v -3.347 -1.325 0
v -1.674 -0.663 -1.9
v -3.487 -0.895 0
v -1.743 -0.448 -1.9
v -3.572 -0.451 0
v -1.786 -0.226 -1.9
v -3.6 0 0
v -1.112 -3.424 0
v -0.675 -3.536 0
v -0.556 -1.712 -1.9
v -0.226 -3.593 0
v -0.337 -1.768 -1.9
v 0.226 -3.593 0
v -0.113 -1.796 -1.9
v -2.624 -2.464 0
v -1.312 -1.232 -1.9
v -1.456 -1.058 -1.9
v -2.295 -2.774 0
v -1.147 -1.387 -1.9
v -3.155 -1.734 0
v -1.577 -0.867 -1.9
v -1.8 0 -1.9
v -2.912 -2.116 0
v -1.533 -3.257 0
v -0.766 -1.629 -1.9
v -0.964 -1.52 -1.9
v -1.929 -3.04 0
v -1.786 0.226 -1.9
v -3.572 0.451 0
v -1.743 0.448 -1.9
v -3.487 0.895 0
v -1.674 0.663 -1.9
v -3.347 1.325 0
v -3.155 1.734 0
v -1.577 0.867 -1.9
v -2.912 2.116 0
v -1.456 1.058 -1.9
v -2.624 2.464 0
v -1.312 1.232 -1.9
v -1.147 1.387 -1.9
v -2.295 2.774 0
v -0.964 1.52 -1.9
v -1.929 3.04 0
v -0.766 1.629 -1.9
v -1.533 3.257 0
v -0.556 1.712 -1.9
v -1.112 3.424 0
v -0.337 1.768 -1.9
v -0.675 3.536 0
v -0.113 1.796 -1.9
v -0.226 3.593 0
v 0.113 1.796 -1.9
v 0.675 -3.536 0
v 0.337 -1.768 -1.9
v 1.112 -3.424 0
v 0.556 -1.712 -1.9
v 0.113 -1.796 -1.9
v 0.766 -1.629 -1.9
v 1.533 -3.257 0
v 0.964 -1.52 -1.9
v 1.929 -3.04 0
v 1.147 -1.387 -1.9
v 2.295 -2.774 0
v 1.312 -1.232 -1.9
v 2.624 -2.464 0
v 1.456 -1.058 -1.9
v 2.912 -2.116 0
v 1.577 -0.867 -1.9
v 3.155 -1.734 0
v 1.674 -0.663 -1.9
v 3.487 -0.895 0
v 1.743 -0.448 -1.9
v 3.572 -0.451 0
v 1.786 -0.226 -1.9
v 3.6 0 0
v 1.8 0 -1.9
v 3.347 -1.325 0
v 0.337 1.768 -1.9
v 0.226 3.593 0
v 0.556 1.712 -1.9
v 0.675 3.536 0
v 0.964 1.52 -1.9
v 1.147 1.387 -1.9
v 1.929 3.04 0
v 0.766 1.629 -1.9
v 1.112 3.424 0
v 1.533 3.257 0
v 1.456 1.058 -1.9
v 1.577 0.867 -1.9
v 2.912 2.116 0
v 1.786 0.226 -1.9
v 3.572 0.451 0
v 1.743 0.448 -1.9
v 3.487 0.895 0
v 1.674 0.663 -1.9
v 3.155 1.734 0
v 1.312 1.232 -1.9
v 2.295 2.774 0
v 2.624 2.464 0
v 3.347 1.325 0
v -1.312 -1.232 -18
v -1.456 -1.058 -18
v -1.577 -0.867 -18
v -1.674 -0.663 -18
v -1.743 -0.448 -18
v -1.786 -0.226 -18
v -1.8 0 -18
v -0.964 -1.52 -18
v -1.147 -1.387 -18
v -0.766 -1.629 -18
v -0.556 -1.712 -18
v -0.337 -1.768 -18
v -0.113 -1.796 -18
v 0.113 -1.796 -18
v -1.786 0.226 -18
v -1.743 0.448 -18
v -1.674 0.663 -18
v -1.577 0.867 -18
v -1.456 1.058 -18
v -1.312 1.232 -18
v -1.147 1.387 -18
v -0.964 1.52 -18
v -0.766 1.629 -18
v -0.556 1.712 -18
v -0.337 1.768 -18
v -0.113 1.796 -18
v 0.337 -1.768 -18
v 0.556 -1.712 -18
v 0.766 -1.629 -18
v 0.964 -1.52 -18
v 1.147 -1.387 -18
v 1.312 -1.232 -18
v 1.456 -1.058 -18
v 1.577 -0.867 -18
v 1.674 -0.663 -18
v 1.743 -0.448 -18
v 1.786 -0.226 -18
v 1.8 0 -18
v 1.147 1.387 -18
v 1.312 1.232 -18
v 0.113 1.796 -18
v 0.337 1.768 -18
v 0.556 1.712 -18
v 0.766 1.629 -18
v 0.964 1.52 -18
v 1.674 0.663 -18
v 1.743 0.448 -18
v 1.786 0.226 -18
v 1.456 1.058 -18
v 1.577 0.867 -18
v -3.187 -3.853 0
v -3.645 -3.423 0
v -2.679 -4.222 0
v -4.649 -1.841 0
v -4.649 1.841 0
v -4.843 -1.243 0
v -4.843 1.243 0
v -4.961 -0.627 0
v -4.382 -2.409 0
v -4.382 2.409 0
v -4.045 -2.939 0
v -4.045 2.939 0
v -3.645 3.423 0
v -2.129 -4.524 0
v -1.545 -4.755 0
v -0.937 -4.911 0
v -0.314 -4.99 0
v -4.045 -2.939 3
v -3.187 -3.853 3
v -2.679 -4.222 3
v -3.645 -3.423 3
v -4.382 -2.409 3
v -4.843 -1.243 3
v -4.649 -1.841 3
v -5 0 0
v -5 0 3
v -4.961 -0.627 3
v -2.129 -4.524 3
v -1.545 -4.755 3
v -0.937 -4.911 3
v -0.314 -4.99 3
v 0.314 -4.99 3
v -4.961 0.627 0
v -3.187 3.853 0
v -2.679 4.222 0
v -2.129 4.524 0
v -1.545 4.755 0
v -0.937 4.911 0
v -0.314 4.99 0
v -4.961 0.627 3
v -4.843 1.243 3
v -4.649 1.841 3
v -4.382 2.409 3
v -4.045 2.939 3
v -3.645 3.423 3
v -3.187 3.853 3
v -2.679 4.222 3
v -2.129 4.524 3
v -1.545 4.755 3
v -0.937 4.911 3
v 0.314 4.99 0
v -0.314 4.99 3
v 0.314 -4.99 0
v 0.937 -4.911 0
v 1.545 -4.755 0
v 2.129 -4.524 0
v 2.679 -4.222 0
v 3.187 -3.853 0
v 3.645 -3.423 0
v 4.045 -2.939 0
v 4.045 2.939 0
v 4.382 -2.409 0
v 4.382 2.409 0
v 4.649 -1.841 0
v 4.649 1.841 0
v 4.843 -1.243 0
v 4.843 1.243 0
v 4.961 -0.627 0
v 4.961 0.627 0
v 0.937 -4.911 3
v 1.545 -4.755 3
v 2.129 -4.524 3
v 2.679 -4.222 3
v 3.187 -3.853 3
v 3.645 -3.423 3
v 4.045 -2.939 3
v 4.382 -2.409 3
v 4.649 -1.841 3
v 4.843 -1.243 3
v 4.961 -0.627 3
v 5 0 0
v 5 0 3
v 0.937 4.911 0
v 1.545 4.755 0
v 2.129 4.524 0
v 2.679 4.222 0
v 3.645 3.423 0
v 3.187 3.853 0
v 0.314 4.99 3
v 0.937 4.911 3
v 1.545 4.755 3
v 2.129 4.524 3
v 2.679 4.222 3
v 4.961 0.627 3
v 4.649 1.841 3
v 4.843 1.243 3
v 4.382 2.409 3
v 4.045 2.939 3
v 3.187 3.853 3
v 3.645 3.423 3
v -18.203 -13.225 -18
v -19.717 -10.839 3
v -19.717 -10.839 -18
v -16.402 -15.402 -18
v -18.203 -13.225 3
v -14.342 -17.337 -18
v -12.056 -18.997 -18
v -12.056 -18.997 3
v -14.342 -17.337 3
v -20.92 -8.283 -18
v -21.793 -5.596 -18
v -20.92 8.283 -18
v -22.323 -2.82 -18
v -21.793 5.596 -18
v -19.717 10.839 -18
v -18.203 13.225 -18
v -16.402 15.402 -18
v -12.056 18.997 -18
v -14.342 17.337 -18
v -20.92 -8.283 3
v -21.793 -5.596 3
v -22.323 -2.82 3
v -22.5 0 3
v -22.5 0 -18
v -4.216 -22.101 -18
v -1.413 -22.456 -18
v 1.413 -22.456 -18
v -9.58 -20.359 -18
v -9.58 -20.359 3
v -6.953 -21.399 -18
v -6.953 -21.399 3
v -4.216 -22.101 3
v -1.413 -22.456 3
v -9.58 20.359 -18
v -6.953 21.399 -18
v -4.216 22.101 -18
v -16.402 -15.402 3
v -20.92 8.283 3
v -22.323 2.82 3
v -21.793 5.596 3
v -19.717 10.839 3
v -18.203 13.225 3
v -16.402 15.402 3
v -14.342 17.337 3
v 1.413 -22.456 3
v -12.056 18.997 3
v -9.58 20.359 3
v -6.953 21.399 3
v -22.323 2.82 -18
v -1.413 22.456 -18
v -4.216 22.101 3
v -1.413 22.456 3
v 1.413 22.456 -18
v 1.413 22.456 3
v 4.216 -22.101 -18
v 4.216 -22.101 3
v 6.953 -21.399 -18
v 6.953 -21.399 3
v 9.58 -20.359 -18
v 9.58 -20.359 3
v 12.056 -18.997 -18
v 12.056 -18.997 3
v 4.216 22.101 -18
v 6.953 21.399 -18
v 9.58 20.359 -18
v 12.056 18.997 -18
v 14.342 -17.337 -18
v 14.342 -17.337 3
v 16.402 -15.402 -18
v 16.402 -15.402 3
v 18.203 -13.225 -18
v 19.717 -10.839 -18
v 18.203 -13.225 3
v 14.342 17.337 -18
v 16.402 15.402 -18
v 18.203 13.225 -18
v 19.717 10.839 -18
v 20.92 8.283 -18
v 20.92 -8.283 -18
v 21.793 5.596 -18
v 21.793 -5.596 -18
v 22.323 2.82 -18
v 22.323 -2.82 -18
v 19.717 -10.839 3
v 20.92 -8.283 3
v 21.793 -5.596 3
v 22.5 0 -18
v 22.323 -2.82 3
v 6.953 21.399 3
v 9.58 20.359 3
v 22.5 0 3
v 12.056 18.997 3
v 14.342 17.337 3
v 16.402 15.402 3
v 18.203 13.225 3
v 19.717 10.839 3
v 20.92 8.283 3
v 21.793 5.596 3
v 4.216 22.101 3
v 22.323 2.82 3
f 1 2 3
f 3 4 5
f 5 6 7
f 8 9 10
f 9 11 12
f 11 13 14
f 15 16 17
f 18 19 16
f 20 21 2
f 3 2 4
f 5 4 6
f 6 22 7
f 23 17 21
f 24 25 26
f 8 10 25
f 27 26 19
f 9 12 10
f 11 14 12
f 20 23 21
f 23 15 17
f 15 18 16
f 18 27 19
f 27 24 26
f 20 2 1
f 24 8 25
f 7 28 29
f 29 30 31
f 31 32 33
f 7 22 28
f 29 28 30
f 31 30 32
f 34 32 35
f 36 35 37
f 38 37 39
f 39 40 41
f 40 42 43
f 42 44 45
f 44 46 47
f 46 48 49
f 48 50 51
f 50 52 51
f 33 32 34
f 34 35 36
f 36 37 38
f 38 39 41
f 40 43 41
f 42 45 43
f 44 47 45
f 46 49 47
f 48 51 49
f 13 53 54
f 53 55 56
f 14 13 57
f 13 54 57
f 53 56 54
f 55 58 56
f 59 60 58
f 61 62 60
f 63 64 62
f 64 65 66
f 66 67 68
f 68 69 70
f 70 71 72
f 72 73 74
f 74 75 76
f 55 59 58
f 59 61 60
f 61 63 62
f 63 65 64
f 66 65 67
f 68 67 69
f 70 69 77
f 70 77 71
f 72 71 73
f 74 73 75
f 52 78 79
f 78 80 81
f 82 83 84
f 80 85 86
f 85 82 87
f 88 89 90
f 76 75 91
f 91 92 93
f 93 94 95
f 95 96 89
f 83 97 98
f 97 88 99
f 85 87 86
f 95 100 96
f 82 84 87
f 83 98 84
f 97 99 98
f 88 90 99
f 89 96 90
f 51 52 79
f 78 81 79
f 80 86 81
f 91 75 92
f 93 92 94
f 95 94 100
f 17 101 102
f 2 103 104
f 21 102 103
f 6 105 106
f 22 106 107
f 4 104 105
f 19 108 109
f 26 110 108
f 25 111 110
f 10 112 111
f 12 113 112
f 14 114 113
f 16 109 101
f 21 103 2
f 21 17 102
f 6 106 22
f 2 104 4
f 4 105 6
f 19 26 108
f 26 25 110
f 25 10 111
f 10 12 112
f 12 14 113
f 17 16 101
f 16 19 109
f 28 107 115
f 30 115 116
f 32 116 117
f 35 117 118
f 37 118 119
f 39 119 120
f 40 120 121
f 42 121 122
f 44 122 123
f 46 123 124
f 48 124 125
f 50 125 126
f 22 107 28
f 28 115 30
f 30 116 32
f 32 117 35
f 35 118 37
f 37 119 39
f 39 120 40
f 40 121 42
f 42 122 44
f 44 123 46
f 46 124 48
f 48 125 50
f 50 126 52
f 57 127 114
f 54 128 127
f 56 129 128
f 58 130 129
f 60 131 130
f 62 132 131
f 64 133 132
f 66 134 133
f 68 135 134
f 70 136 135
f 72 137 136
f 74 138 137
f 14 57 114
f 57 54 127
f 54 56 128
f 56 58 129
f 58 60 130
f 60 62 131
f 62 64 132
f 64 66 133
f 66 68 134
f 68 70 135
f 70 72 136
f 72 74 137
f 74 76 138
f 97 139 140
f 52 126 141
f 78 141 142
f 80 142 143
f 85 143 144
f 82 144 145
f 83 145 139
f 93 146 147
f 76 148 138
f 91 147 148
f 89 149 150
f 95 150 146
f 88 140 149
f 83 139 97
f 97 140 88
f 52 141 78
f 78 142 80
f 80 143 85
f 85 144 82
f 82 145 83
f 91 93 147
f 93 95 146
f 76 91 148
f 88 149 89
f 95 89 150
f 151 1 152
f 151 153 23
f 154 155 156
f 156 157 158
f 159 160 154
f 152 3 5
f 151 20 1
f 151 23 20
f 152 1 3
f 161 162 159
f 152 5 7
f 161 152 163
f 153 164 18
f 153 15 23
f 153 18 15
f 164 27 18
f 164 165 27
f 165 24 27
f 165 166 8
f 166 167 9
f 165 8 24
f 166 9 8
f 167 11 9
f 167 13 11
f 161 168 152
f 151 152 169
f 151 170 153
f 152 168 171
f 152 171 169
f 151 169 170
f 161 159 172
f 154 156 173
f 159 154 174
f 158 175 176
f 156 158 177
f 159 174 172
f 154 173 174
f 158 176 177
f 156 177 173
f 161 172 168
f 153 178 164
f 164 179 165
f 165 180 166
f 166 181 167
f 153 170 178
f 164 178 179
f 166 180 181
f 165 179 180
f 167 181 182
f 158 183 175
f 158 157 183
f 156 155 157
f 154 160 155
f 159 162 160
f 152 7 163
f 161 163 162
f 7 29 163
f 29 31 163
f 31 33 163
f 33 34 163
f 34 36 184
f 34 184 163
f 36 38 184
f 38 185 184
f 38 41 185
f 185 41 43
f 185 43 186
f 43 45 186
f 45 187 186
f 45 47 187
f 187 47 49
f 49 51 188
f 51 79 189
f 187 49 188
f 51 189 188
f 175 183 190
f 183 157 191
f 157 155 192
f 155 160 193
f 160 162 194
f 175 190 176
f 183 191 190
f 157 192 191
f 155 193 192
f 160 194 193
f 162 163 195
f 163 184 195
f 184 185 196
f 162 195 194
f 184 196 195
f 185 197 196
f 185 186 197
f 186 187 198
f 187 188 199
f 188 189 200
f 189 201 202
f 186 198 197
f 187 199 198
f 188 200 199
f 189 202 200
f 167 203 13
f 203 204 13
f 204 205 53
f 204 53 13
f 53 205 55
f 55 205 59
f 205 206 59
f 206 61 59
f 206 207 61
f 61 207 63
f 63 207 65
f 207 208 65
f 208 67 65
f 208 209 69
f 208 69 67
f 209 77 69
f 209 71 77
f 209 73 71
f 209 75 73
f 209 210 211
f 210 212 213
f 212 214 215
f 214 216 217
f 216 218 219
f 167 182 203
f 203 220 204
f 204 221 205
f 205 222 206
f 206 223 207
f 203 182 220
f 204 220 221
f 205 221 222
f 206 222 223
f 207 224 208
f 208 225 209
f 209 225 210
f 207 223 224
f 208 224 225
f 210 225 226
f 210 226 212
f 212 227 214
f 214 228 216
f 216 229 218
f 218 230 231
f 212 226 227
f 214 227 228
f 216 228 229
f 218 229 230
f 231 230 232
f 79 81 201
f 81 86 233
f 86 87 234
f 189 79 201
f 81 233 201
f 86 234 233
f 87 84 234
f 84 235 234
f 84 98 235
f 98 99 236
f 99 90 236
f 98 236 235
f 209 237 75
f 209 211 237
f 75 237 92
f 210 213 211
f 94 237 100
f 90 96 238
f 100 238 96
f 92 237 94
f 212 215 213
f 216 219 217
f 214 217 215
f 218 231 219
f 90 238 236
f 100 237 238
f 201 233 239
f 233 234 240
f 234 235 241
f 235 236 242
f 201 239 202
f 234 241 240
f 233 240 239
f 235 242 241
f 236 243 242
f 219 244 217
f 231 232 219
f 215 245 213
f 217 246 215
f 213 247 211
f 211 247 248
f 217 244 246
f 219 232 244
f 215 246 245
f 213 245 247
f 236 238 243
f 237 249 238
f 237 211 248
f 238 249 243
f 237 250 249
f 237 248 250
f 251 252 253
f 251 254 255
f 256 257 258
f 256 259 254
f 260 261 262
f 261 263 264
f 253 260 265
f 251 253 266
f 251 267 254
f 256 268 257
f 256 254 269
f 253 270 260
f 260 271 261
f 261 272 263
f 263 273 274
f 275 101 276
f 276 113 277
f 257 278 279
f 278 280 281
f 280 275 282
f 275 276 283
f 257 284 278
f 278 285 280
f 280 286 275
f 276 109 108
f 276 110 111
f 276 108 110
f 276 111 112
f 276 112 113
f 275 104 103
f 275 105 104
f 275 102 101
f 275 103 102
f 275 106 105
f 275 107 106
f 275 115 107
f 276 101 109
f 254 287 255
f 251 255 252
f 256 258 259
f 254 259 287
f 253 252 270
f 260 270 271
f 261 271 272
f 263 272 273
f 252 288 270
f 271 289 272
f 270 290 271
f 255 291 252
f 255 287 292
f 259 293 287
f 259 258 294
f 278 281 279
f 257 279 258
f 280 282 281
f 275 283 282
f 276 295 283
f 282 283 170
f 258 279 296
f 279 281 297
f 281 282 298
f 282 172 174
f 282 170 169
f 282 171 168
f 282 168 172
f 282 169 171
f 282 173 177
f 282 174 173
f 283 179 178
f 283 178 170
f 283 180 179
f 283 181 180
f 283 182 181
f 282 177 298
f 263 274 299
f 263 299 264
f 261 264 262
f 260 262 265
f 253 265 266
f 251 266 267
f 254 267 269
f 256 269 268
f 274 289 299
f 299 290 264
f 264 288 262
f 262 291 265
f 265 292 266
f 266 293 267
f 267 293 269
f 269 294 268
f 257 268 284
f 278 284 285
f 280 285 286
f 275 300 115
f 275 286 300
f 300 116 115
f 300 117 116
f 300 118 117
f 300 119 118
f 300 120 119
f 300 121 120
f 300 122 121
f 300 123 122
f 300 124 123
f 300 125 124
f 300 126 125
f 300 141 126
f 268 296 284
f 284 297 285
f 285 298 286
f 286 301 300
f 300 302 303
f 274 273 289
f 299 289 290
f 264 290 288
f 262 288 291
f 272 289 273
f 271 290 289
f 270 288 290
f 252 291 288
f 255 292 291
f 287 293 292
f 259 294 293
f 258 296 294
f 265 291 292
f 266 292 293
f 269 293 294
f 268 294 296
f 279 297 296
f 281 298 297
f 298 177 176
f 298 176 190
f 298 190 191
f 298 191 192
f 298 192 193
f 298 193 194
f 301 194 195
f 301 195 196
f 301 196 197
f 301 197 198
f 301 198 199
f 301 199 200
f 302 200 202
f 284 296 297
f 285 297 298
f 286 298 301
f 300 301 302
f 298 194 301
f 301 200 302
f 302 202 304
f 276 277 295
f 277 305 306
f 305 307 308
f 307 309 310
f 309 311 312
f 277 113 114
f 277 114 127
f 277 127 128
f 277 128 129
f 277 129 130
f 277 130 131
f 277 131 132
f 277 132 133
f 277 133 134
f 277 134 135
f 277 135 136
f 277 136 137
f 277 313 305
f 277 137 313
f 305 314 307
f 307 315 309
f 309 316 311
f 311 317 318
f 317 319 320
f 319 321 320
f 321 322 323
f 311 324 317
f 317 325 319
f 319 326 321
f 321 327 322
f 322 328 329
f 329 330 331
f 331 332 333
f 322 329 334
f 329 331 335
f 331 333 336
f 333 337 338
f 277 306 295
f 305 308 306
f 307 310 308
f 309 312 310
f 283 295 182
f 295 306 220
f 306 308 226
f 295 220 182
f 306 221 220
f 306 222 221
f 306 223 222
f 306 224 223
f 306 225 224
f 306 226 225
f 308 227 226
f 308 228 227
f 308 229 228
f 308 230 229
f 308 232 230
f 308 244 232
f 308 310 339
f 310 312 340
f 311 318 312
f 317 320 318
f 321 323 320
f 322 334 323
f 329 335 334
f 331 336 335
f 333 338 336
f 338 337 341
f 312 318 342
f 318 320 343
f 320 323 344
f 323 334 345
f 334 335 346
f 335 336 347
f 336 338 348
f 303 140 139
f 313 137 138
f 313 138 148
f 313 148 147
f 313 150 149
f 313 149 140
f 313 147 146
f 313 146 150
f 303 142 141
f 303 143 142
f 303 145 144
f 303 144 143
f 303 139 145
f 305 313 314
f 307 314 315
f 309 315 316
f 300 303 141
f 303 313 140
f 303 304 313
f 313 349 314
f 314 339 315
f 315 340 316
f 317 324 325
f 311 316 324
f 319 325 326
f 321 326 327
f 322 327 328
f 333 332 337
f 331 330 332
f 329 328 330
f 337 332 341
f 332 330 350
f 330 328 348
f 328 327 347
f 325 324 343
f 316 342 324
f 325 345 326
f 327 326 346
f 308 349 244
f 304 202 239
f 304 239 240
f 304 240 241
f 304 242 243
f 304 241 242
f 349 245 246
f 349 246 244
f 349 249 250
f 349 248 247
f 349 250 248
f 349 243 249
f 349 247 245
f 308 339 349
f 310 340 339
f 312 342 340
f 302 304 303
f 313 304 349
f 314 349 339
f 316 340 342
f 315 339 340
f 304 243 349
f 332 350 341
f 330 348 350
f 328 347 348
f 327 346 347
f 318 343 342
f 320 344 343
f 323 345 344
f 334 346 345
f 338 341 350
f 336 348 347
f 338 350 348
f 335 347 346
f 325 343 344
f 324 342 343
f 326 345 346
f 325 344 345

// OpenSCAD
$fn = 50;

difference() {
	union() {
		translate(v = [0, 0, -18.0]) {
			cylinder(h = 21, r = 22.5);
		}
	}
	union() {
		translate(v = [0, 0, 0]) {
			rotate(a = [0, 0, 0]) {
				difference() {
					union() {
						translate(v = [0, 0, -21.0]) {
							cylinder(h = 21, r = 1.5);
						}
						translate(v = [0, 0, -1.9]) {
							cylinder(h = 1.9, r1 = 1.8, r2 = 3.6);
						}
						translate(v = [0, 0, -21.0]) {
							cylinder(h = 21, r = 1.8);
						}
						translate(v = [0, 0, -21.0]) {
							cylinder(h = 21, r = 1.5);
						}
					}
					union();
				}
			}
		}
		#cylinder(h = 3, r = 5.0);
	}
}
